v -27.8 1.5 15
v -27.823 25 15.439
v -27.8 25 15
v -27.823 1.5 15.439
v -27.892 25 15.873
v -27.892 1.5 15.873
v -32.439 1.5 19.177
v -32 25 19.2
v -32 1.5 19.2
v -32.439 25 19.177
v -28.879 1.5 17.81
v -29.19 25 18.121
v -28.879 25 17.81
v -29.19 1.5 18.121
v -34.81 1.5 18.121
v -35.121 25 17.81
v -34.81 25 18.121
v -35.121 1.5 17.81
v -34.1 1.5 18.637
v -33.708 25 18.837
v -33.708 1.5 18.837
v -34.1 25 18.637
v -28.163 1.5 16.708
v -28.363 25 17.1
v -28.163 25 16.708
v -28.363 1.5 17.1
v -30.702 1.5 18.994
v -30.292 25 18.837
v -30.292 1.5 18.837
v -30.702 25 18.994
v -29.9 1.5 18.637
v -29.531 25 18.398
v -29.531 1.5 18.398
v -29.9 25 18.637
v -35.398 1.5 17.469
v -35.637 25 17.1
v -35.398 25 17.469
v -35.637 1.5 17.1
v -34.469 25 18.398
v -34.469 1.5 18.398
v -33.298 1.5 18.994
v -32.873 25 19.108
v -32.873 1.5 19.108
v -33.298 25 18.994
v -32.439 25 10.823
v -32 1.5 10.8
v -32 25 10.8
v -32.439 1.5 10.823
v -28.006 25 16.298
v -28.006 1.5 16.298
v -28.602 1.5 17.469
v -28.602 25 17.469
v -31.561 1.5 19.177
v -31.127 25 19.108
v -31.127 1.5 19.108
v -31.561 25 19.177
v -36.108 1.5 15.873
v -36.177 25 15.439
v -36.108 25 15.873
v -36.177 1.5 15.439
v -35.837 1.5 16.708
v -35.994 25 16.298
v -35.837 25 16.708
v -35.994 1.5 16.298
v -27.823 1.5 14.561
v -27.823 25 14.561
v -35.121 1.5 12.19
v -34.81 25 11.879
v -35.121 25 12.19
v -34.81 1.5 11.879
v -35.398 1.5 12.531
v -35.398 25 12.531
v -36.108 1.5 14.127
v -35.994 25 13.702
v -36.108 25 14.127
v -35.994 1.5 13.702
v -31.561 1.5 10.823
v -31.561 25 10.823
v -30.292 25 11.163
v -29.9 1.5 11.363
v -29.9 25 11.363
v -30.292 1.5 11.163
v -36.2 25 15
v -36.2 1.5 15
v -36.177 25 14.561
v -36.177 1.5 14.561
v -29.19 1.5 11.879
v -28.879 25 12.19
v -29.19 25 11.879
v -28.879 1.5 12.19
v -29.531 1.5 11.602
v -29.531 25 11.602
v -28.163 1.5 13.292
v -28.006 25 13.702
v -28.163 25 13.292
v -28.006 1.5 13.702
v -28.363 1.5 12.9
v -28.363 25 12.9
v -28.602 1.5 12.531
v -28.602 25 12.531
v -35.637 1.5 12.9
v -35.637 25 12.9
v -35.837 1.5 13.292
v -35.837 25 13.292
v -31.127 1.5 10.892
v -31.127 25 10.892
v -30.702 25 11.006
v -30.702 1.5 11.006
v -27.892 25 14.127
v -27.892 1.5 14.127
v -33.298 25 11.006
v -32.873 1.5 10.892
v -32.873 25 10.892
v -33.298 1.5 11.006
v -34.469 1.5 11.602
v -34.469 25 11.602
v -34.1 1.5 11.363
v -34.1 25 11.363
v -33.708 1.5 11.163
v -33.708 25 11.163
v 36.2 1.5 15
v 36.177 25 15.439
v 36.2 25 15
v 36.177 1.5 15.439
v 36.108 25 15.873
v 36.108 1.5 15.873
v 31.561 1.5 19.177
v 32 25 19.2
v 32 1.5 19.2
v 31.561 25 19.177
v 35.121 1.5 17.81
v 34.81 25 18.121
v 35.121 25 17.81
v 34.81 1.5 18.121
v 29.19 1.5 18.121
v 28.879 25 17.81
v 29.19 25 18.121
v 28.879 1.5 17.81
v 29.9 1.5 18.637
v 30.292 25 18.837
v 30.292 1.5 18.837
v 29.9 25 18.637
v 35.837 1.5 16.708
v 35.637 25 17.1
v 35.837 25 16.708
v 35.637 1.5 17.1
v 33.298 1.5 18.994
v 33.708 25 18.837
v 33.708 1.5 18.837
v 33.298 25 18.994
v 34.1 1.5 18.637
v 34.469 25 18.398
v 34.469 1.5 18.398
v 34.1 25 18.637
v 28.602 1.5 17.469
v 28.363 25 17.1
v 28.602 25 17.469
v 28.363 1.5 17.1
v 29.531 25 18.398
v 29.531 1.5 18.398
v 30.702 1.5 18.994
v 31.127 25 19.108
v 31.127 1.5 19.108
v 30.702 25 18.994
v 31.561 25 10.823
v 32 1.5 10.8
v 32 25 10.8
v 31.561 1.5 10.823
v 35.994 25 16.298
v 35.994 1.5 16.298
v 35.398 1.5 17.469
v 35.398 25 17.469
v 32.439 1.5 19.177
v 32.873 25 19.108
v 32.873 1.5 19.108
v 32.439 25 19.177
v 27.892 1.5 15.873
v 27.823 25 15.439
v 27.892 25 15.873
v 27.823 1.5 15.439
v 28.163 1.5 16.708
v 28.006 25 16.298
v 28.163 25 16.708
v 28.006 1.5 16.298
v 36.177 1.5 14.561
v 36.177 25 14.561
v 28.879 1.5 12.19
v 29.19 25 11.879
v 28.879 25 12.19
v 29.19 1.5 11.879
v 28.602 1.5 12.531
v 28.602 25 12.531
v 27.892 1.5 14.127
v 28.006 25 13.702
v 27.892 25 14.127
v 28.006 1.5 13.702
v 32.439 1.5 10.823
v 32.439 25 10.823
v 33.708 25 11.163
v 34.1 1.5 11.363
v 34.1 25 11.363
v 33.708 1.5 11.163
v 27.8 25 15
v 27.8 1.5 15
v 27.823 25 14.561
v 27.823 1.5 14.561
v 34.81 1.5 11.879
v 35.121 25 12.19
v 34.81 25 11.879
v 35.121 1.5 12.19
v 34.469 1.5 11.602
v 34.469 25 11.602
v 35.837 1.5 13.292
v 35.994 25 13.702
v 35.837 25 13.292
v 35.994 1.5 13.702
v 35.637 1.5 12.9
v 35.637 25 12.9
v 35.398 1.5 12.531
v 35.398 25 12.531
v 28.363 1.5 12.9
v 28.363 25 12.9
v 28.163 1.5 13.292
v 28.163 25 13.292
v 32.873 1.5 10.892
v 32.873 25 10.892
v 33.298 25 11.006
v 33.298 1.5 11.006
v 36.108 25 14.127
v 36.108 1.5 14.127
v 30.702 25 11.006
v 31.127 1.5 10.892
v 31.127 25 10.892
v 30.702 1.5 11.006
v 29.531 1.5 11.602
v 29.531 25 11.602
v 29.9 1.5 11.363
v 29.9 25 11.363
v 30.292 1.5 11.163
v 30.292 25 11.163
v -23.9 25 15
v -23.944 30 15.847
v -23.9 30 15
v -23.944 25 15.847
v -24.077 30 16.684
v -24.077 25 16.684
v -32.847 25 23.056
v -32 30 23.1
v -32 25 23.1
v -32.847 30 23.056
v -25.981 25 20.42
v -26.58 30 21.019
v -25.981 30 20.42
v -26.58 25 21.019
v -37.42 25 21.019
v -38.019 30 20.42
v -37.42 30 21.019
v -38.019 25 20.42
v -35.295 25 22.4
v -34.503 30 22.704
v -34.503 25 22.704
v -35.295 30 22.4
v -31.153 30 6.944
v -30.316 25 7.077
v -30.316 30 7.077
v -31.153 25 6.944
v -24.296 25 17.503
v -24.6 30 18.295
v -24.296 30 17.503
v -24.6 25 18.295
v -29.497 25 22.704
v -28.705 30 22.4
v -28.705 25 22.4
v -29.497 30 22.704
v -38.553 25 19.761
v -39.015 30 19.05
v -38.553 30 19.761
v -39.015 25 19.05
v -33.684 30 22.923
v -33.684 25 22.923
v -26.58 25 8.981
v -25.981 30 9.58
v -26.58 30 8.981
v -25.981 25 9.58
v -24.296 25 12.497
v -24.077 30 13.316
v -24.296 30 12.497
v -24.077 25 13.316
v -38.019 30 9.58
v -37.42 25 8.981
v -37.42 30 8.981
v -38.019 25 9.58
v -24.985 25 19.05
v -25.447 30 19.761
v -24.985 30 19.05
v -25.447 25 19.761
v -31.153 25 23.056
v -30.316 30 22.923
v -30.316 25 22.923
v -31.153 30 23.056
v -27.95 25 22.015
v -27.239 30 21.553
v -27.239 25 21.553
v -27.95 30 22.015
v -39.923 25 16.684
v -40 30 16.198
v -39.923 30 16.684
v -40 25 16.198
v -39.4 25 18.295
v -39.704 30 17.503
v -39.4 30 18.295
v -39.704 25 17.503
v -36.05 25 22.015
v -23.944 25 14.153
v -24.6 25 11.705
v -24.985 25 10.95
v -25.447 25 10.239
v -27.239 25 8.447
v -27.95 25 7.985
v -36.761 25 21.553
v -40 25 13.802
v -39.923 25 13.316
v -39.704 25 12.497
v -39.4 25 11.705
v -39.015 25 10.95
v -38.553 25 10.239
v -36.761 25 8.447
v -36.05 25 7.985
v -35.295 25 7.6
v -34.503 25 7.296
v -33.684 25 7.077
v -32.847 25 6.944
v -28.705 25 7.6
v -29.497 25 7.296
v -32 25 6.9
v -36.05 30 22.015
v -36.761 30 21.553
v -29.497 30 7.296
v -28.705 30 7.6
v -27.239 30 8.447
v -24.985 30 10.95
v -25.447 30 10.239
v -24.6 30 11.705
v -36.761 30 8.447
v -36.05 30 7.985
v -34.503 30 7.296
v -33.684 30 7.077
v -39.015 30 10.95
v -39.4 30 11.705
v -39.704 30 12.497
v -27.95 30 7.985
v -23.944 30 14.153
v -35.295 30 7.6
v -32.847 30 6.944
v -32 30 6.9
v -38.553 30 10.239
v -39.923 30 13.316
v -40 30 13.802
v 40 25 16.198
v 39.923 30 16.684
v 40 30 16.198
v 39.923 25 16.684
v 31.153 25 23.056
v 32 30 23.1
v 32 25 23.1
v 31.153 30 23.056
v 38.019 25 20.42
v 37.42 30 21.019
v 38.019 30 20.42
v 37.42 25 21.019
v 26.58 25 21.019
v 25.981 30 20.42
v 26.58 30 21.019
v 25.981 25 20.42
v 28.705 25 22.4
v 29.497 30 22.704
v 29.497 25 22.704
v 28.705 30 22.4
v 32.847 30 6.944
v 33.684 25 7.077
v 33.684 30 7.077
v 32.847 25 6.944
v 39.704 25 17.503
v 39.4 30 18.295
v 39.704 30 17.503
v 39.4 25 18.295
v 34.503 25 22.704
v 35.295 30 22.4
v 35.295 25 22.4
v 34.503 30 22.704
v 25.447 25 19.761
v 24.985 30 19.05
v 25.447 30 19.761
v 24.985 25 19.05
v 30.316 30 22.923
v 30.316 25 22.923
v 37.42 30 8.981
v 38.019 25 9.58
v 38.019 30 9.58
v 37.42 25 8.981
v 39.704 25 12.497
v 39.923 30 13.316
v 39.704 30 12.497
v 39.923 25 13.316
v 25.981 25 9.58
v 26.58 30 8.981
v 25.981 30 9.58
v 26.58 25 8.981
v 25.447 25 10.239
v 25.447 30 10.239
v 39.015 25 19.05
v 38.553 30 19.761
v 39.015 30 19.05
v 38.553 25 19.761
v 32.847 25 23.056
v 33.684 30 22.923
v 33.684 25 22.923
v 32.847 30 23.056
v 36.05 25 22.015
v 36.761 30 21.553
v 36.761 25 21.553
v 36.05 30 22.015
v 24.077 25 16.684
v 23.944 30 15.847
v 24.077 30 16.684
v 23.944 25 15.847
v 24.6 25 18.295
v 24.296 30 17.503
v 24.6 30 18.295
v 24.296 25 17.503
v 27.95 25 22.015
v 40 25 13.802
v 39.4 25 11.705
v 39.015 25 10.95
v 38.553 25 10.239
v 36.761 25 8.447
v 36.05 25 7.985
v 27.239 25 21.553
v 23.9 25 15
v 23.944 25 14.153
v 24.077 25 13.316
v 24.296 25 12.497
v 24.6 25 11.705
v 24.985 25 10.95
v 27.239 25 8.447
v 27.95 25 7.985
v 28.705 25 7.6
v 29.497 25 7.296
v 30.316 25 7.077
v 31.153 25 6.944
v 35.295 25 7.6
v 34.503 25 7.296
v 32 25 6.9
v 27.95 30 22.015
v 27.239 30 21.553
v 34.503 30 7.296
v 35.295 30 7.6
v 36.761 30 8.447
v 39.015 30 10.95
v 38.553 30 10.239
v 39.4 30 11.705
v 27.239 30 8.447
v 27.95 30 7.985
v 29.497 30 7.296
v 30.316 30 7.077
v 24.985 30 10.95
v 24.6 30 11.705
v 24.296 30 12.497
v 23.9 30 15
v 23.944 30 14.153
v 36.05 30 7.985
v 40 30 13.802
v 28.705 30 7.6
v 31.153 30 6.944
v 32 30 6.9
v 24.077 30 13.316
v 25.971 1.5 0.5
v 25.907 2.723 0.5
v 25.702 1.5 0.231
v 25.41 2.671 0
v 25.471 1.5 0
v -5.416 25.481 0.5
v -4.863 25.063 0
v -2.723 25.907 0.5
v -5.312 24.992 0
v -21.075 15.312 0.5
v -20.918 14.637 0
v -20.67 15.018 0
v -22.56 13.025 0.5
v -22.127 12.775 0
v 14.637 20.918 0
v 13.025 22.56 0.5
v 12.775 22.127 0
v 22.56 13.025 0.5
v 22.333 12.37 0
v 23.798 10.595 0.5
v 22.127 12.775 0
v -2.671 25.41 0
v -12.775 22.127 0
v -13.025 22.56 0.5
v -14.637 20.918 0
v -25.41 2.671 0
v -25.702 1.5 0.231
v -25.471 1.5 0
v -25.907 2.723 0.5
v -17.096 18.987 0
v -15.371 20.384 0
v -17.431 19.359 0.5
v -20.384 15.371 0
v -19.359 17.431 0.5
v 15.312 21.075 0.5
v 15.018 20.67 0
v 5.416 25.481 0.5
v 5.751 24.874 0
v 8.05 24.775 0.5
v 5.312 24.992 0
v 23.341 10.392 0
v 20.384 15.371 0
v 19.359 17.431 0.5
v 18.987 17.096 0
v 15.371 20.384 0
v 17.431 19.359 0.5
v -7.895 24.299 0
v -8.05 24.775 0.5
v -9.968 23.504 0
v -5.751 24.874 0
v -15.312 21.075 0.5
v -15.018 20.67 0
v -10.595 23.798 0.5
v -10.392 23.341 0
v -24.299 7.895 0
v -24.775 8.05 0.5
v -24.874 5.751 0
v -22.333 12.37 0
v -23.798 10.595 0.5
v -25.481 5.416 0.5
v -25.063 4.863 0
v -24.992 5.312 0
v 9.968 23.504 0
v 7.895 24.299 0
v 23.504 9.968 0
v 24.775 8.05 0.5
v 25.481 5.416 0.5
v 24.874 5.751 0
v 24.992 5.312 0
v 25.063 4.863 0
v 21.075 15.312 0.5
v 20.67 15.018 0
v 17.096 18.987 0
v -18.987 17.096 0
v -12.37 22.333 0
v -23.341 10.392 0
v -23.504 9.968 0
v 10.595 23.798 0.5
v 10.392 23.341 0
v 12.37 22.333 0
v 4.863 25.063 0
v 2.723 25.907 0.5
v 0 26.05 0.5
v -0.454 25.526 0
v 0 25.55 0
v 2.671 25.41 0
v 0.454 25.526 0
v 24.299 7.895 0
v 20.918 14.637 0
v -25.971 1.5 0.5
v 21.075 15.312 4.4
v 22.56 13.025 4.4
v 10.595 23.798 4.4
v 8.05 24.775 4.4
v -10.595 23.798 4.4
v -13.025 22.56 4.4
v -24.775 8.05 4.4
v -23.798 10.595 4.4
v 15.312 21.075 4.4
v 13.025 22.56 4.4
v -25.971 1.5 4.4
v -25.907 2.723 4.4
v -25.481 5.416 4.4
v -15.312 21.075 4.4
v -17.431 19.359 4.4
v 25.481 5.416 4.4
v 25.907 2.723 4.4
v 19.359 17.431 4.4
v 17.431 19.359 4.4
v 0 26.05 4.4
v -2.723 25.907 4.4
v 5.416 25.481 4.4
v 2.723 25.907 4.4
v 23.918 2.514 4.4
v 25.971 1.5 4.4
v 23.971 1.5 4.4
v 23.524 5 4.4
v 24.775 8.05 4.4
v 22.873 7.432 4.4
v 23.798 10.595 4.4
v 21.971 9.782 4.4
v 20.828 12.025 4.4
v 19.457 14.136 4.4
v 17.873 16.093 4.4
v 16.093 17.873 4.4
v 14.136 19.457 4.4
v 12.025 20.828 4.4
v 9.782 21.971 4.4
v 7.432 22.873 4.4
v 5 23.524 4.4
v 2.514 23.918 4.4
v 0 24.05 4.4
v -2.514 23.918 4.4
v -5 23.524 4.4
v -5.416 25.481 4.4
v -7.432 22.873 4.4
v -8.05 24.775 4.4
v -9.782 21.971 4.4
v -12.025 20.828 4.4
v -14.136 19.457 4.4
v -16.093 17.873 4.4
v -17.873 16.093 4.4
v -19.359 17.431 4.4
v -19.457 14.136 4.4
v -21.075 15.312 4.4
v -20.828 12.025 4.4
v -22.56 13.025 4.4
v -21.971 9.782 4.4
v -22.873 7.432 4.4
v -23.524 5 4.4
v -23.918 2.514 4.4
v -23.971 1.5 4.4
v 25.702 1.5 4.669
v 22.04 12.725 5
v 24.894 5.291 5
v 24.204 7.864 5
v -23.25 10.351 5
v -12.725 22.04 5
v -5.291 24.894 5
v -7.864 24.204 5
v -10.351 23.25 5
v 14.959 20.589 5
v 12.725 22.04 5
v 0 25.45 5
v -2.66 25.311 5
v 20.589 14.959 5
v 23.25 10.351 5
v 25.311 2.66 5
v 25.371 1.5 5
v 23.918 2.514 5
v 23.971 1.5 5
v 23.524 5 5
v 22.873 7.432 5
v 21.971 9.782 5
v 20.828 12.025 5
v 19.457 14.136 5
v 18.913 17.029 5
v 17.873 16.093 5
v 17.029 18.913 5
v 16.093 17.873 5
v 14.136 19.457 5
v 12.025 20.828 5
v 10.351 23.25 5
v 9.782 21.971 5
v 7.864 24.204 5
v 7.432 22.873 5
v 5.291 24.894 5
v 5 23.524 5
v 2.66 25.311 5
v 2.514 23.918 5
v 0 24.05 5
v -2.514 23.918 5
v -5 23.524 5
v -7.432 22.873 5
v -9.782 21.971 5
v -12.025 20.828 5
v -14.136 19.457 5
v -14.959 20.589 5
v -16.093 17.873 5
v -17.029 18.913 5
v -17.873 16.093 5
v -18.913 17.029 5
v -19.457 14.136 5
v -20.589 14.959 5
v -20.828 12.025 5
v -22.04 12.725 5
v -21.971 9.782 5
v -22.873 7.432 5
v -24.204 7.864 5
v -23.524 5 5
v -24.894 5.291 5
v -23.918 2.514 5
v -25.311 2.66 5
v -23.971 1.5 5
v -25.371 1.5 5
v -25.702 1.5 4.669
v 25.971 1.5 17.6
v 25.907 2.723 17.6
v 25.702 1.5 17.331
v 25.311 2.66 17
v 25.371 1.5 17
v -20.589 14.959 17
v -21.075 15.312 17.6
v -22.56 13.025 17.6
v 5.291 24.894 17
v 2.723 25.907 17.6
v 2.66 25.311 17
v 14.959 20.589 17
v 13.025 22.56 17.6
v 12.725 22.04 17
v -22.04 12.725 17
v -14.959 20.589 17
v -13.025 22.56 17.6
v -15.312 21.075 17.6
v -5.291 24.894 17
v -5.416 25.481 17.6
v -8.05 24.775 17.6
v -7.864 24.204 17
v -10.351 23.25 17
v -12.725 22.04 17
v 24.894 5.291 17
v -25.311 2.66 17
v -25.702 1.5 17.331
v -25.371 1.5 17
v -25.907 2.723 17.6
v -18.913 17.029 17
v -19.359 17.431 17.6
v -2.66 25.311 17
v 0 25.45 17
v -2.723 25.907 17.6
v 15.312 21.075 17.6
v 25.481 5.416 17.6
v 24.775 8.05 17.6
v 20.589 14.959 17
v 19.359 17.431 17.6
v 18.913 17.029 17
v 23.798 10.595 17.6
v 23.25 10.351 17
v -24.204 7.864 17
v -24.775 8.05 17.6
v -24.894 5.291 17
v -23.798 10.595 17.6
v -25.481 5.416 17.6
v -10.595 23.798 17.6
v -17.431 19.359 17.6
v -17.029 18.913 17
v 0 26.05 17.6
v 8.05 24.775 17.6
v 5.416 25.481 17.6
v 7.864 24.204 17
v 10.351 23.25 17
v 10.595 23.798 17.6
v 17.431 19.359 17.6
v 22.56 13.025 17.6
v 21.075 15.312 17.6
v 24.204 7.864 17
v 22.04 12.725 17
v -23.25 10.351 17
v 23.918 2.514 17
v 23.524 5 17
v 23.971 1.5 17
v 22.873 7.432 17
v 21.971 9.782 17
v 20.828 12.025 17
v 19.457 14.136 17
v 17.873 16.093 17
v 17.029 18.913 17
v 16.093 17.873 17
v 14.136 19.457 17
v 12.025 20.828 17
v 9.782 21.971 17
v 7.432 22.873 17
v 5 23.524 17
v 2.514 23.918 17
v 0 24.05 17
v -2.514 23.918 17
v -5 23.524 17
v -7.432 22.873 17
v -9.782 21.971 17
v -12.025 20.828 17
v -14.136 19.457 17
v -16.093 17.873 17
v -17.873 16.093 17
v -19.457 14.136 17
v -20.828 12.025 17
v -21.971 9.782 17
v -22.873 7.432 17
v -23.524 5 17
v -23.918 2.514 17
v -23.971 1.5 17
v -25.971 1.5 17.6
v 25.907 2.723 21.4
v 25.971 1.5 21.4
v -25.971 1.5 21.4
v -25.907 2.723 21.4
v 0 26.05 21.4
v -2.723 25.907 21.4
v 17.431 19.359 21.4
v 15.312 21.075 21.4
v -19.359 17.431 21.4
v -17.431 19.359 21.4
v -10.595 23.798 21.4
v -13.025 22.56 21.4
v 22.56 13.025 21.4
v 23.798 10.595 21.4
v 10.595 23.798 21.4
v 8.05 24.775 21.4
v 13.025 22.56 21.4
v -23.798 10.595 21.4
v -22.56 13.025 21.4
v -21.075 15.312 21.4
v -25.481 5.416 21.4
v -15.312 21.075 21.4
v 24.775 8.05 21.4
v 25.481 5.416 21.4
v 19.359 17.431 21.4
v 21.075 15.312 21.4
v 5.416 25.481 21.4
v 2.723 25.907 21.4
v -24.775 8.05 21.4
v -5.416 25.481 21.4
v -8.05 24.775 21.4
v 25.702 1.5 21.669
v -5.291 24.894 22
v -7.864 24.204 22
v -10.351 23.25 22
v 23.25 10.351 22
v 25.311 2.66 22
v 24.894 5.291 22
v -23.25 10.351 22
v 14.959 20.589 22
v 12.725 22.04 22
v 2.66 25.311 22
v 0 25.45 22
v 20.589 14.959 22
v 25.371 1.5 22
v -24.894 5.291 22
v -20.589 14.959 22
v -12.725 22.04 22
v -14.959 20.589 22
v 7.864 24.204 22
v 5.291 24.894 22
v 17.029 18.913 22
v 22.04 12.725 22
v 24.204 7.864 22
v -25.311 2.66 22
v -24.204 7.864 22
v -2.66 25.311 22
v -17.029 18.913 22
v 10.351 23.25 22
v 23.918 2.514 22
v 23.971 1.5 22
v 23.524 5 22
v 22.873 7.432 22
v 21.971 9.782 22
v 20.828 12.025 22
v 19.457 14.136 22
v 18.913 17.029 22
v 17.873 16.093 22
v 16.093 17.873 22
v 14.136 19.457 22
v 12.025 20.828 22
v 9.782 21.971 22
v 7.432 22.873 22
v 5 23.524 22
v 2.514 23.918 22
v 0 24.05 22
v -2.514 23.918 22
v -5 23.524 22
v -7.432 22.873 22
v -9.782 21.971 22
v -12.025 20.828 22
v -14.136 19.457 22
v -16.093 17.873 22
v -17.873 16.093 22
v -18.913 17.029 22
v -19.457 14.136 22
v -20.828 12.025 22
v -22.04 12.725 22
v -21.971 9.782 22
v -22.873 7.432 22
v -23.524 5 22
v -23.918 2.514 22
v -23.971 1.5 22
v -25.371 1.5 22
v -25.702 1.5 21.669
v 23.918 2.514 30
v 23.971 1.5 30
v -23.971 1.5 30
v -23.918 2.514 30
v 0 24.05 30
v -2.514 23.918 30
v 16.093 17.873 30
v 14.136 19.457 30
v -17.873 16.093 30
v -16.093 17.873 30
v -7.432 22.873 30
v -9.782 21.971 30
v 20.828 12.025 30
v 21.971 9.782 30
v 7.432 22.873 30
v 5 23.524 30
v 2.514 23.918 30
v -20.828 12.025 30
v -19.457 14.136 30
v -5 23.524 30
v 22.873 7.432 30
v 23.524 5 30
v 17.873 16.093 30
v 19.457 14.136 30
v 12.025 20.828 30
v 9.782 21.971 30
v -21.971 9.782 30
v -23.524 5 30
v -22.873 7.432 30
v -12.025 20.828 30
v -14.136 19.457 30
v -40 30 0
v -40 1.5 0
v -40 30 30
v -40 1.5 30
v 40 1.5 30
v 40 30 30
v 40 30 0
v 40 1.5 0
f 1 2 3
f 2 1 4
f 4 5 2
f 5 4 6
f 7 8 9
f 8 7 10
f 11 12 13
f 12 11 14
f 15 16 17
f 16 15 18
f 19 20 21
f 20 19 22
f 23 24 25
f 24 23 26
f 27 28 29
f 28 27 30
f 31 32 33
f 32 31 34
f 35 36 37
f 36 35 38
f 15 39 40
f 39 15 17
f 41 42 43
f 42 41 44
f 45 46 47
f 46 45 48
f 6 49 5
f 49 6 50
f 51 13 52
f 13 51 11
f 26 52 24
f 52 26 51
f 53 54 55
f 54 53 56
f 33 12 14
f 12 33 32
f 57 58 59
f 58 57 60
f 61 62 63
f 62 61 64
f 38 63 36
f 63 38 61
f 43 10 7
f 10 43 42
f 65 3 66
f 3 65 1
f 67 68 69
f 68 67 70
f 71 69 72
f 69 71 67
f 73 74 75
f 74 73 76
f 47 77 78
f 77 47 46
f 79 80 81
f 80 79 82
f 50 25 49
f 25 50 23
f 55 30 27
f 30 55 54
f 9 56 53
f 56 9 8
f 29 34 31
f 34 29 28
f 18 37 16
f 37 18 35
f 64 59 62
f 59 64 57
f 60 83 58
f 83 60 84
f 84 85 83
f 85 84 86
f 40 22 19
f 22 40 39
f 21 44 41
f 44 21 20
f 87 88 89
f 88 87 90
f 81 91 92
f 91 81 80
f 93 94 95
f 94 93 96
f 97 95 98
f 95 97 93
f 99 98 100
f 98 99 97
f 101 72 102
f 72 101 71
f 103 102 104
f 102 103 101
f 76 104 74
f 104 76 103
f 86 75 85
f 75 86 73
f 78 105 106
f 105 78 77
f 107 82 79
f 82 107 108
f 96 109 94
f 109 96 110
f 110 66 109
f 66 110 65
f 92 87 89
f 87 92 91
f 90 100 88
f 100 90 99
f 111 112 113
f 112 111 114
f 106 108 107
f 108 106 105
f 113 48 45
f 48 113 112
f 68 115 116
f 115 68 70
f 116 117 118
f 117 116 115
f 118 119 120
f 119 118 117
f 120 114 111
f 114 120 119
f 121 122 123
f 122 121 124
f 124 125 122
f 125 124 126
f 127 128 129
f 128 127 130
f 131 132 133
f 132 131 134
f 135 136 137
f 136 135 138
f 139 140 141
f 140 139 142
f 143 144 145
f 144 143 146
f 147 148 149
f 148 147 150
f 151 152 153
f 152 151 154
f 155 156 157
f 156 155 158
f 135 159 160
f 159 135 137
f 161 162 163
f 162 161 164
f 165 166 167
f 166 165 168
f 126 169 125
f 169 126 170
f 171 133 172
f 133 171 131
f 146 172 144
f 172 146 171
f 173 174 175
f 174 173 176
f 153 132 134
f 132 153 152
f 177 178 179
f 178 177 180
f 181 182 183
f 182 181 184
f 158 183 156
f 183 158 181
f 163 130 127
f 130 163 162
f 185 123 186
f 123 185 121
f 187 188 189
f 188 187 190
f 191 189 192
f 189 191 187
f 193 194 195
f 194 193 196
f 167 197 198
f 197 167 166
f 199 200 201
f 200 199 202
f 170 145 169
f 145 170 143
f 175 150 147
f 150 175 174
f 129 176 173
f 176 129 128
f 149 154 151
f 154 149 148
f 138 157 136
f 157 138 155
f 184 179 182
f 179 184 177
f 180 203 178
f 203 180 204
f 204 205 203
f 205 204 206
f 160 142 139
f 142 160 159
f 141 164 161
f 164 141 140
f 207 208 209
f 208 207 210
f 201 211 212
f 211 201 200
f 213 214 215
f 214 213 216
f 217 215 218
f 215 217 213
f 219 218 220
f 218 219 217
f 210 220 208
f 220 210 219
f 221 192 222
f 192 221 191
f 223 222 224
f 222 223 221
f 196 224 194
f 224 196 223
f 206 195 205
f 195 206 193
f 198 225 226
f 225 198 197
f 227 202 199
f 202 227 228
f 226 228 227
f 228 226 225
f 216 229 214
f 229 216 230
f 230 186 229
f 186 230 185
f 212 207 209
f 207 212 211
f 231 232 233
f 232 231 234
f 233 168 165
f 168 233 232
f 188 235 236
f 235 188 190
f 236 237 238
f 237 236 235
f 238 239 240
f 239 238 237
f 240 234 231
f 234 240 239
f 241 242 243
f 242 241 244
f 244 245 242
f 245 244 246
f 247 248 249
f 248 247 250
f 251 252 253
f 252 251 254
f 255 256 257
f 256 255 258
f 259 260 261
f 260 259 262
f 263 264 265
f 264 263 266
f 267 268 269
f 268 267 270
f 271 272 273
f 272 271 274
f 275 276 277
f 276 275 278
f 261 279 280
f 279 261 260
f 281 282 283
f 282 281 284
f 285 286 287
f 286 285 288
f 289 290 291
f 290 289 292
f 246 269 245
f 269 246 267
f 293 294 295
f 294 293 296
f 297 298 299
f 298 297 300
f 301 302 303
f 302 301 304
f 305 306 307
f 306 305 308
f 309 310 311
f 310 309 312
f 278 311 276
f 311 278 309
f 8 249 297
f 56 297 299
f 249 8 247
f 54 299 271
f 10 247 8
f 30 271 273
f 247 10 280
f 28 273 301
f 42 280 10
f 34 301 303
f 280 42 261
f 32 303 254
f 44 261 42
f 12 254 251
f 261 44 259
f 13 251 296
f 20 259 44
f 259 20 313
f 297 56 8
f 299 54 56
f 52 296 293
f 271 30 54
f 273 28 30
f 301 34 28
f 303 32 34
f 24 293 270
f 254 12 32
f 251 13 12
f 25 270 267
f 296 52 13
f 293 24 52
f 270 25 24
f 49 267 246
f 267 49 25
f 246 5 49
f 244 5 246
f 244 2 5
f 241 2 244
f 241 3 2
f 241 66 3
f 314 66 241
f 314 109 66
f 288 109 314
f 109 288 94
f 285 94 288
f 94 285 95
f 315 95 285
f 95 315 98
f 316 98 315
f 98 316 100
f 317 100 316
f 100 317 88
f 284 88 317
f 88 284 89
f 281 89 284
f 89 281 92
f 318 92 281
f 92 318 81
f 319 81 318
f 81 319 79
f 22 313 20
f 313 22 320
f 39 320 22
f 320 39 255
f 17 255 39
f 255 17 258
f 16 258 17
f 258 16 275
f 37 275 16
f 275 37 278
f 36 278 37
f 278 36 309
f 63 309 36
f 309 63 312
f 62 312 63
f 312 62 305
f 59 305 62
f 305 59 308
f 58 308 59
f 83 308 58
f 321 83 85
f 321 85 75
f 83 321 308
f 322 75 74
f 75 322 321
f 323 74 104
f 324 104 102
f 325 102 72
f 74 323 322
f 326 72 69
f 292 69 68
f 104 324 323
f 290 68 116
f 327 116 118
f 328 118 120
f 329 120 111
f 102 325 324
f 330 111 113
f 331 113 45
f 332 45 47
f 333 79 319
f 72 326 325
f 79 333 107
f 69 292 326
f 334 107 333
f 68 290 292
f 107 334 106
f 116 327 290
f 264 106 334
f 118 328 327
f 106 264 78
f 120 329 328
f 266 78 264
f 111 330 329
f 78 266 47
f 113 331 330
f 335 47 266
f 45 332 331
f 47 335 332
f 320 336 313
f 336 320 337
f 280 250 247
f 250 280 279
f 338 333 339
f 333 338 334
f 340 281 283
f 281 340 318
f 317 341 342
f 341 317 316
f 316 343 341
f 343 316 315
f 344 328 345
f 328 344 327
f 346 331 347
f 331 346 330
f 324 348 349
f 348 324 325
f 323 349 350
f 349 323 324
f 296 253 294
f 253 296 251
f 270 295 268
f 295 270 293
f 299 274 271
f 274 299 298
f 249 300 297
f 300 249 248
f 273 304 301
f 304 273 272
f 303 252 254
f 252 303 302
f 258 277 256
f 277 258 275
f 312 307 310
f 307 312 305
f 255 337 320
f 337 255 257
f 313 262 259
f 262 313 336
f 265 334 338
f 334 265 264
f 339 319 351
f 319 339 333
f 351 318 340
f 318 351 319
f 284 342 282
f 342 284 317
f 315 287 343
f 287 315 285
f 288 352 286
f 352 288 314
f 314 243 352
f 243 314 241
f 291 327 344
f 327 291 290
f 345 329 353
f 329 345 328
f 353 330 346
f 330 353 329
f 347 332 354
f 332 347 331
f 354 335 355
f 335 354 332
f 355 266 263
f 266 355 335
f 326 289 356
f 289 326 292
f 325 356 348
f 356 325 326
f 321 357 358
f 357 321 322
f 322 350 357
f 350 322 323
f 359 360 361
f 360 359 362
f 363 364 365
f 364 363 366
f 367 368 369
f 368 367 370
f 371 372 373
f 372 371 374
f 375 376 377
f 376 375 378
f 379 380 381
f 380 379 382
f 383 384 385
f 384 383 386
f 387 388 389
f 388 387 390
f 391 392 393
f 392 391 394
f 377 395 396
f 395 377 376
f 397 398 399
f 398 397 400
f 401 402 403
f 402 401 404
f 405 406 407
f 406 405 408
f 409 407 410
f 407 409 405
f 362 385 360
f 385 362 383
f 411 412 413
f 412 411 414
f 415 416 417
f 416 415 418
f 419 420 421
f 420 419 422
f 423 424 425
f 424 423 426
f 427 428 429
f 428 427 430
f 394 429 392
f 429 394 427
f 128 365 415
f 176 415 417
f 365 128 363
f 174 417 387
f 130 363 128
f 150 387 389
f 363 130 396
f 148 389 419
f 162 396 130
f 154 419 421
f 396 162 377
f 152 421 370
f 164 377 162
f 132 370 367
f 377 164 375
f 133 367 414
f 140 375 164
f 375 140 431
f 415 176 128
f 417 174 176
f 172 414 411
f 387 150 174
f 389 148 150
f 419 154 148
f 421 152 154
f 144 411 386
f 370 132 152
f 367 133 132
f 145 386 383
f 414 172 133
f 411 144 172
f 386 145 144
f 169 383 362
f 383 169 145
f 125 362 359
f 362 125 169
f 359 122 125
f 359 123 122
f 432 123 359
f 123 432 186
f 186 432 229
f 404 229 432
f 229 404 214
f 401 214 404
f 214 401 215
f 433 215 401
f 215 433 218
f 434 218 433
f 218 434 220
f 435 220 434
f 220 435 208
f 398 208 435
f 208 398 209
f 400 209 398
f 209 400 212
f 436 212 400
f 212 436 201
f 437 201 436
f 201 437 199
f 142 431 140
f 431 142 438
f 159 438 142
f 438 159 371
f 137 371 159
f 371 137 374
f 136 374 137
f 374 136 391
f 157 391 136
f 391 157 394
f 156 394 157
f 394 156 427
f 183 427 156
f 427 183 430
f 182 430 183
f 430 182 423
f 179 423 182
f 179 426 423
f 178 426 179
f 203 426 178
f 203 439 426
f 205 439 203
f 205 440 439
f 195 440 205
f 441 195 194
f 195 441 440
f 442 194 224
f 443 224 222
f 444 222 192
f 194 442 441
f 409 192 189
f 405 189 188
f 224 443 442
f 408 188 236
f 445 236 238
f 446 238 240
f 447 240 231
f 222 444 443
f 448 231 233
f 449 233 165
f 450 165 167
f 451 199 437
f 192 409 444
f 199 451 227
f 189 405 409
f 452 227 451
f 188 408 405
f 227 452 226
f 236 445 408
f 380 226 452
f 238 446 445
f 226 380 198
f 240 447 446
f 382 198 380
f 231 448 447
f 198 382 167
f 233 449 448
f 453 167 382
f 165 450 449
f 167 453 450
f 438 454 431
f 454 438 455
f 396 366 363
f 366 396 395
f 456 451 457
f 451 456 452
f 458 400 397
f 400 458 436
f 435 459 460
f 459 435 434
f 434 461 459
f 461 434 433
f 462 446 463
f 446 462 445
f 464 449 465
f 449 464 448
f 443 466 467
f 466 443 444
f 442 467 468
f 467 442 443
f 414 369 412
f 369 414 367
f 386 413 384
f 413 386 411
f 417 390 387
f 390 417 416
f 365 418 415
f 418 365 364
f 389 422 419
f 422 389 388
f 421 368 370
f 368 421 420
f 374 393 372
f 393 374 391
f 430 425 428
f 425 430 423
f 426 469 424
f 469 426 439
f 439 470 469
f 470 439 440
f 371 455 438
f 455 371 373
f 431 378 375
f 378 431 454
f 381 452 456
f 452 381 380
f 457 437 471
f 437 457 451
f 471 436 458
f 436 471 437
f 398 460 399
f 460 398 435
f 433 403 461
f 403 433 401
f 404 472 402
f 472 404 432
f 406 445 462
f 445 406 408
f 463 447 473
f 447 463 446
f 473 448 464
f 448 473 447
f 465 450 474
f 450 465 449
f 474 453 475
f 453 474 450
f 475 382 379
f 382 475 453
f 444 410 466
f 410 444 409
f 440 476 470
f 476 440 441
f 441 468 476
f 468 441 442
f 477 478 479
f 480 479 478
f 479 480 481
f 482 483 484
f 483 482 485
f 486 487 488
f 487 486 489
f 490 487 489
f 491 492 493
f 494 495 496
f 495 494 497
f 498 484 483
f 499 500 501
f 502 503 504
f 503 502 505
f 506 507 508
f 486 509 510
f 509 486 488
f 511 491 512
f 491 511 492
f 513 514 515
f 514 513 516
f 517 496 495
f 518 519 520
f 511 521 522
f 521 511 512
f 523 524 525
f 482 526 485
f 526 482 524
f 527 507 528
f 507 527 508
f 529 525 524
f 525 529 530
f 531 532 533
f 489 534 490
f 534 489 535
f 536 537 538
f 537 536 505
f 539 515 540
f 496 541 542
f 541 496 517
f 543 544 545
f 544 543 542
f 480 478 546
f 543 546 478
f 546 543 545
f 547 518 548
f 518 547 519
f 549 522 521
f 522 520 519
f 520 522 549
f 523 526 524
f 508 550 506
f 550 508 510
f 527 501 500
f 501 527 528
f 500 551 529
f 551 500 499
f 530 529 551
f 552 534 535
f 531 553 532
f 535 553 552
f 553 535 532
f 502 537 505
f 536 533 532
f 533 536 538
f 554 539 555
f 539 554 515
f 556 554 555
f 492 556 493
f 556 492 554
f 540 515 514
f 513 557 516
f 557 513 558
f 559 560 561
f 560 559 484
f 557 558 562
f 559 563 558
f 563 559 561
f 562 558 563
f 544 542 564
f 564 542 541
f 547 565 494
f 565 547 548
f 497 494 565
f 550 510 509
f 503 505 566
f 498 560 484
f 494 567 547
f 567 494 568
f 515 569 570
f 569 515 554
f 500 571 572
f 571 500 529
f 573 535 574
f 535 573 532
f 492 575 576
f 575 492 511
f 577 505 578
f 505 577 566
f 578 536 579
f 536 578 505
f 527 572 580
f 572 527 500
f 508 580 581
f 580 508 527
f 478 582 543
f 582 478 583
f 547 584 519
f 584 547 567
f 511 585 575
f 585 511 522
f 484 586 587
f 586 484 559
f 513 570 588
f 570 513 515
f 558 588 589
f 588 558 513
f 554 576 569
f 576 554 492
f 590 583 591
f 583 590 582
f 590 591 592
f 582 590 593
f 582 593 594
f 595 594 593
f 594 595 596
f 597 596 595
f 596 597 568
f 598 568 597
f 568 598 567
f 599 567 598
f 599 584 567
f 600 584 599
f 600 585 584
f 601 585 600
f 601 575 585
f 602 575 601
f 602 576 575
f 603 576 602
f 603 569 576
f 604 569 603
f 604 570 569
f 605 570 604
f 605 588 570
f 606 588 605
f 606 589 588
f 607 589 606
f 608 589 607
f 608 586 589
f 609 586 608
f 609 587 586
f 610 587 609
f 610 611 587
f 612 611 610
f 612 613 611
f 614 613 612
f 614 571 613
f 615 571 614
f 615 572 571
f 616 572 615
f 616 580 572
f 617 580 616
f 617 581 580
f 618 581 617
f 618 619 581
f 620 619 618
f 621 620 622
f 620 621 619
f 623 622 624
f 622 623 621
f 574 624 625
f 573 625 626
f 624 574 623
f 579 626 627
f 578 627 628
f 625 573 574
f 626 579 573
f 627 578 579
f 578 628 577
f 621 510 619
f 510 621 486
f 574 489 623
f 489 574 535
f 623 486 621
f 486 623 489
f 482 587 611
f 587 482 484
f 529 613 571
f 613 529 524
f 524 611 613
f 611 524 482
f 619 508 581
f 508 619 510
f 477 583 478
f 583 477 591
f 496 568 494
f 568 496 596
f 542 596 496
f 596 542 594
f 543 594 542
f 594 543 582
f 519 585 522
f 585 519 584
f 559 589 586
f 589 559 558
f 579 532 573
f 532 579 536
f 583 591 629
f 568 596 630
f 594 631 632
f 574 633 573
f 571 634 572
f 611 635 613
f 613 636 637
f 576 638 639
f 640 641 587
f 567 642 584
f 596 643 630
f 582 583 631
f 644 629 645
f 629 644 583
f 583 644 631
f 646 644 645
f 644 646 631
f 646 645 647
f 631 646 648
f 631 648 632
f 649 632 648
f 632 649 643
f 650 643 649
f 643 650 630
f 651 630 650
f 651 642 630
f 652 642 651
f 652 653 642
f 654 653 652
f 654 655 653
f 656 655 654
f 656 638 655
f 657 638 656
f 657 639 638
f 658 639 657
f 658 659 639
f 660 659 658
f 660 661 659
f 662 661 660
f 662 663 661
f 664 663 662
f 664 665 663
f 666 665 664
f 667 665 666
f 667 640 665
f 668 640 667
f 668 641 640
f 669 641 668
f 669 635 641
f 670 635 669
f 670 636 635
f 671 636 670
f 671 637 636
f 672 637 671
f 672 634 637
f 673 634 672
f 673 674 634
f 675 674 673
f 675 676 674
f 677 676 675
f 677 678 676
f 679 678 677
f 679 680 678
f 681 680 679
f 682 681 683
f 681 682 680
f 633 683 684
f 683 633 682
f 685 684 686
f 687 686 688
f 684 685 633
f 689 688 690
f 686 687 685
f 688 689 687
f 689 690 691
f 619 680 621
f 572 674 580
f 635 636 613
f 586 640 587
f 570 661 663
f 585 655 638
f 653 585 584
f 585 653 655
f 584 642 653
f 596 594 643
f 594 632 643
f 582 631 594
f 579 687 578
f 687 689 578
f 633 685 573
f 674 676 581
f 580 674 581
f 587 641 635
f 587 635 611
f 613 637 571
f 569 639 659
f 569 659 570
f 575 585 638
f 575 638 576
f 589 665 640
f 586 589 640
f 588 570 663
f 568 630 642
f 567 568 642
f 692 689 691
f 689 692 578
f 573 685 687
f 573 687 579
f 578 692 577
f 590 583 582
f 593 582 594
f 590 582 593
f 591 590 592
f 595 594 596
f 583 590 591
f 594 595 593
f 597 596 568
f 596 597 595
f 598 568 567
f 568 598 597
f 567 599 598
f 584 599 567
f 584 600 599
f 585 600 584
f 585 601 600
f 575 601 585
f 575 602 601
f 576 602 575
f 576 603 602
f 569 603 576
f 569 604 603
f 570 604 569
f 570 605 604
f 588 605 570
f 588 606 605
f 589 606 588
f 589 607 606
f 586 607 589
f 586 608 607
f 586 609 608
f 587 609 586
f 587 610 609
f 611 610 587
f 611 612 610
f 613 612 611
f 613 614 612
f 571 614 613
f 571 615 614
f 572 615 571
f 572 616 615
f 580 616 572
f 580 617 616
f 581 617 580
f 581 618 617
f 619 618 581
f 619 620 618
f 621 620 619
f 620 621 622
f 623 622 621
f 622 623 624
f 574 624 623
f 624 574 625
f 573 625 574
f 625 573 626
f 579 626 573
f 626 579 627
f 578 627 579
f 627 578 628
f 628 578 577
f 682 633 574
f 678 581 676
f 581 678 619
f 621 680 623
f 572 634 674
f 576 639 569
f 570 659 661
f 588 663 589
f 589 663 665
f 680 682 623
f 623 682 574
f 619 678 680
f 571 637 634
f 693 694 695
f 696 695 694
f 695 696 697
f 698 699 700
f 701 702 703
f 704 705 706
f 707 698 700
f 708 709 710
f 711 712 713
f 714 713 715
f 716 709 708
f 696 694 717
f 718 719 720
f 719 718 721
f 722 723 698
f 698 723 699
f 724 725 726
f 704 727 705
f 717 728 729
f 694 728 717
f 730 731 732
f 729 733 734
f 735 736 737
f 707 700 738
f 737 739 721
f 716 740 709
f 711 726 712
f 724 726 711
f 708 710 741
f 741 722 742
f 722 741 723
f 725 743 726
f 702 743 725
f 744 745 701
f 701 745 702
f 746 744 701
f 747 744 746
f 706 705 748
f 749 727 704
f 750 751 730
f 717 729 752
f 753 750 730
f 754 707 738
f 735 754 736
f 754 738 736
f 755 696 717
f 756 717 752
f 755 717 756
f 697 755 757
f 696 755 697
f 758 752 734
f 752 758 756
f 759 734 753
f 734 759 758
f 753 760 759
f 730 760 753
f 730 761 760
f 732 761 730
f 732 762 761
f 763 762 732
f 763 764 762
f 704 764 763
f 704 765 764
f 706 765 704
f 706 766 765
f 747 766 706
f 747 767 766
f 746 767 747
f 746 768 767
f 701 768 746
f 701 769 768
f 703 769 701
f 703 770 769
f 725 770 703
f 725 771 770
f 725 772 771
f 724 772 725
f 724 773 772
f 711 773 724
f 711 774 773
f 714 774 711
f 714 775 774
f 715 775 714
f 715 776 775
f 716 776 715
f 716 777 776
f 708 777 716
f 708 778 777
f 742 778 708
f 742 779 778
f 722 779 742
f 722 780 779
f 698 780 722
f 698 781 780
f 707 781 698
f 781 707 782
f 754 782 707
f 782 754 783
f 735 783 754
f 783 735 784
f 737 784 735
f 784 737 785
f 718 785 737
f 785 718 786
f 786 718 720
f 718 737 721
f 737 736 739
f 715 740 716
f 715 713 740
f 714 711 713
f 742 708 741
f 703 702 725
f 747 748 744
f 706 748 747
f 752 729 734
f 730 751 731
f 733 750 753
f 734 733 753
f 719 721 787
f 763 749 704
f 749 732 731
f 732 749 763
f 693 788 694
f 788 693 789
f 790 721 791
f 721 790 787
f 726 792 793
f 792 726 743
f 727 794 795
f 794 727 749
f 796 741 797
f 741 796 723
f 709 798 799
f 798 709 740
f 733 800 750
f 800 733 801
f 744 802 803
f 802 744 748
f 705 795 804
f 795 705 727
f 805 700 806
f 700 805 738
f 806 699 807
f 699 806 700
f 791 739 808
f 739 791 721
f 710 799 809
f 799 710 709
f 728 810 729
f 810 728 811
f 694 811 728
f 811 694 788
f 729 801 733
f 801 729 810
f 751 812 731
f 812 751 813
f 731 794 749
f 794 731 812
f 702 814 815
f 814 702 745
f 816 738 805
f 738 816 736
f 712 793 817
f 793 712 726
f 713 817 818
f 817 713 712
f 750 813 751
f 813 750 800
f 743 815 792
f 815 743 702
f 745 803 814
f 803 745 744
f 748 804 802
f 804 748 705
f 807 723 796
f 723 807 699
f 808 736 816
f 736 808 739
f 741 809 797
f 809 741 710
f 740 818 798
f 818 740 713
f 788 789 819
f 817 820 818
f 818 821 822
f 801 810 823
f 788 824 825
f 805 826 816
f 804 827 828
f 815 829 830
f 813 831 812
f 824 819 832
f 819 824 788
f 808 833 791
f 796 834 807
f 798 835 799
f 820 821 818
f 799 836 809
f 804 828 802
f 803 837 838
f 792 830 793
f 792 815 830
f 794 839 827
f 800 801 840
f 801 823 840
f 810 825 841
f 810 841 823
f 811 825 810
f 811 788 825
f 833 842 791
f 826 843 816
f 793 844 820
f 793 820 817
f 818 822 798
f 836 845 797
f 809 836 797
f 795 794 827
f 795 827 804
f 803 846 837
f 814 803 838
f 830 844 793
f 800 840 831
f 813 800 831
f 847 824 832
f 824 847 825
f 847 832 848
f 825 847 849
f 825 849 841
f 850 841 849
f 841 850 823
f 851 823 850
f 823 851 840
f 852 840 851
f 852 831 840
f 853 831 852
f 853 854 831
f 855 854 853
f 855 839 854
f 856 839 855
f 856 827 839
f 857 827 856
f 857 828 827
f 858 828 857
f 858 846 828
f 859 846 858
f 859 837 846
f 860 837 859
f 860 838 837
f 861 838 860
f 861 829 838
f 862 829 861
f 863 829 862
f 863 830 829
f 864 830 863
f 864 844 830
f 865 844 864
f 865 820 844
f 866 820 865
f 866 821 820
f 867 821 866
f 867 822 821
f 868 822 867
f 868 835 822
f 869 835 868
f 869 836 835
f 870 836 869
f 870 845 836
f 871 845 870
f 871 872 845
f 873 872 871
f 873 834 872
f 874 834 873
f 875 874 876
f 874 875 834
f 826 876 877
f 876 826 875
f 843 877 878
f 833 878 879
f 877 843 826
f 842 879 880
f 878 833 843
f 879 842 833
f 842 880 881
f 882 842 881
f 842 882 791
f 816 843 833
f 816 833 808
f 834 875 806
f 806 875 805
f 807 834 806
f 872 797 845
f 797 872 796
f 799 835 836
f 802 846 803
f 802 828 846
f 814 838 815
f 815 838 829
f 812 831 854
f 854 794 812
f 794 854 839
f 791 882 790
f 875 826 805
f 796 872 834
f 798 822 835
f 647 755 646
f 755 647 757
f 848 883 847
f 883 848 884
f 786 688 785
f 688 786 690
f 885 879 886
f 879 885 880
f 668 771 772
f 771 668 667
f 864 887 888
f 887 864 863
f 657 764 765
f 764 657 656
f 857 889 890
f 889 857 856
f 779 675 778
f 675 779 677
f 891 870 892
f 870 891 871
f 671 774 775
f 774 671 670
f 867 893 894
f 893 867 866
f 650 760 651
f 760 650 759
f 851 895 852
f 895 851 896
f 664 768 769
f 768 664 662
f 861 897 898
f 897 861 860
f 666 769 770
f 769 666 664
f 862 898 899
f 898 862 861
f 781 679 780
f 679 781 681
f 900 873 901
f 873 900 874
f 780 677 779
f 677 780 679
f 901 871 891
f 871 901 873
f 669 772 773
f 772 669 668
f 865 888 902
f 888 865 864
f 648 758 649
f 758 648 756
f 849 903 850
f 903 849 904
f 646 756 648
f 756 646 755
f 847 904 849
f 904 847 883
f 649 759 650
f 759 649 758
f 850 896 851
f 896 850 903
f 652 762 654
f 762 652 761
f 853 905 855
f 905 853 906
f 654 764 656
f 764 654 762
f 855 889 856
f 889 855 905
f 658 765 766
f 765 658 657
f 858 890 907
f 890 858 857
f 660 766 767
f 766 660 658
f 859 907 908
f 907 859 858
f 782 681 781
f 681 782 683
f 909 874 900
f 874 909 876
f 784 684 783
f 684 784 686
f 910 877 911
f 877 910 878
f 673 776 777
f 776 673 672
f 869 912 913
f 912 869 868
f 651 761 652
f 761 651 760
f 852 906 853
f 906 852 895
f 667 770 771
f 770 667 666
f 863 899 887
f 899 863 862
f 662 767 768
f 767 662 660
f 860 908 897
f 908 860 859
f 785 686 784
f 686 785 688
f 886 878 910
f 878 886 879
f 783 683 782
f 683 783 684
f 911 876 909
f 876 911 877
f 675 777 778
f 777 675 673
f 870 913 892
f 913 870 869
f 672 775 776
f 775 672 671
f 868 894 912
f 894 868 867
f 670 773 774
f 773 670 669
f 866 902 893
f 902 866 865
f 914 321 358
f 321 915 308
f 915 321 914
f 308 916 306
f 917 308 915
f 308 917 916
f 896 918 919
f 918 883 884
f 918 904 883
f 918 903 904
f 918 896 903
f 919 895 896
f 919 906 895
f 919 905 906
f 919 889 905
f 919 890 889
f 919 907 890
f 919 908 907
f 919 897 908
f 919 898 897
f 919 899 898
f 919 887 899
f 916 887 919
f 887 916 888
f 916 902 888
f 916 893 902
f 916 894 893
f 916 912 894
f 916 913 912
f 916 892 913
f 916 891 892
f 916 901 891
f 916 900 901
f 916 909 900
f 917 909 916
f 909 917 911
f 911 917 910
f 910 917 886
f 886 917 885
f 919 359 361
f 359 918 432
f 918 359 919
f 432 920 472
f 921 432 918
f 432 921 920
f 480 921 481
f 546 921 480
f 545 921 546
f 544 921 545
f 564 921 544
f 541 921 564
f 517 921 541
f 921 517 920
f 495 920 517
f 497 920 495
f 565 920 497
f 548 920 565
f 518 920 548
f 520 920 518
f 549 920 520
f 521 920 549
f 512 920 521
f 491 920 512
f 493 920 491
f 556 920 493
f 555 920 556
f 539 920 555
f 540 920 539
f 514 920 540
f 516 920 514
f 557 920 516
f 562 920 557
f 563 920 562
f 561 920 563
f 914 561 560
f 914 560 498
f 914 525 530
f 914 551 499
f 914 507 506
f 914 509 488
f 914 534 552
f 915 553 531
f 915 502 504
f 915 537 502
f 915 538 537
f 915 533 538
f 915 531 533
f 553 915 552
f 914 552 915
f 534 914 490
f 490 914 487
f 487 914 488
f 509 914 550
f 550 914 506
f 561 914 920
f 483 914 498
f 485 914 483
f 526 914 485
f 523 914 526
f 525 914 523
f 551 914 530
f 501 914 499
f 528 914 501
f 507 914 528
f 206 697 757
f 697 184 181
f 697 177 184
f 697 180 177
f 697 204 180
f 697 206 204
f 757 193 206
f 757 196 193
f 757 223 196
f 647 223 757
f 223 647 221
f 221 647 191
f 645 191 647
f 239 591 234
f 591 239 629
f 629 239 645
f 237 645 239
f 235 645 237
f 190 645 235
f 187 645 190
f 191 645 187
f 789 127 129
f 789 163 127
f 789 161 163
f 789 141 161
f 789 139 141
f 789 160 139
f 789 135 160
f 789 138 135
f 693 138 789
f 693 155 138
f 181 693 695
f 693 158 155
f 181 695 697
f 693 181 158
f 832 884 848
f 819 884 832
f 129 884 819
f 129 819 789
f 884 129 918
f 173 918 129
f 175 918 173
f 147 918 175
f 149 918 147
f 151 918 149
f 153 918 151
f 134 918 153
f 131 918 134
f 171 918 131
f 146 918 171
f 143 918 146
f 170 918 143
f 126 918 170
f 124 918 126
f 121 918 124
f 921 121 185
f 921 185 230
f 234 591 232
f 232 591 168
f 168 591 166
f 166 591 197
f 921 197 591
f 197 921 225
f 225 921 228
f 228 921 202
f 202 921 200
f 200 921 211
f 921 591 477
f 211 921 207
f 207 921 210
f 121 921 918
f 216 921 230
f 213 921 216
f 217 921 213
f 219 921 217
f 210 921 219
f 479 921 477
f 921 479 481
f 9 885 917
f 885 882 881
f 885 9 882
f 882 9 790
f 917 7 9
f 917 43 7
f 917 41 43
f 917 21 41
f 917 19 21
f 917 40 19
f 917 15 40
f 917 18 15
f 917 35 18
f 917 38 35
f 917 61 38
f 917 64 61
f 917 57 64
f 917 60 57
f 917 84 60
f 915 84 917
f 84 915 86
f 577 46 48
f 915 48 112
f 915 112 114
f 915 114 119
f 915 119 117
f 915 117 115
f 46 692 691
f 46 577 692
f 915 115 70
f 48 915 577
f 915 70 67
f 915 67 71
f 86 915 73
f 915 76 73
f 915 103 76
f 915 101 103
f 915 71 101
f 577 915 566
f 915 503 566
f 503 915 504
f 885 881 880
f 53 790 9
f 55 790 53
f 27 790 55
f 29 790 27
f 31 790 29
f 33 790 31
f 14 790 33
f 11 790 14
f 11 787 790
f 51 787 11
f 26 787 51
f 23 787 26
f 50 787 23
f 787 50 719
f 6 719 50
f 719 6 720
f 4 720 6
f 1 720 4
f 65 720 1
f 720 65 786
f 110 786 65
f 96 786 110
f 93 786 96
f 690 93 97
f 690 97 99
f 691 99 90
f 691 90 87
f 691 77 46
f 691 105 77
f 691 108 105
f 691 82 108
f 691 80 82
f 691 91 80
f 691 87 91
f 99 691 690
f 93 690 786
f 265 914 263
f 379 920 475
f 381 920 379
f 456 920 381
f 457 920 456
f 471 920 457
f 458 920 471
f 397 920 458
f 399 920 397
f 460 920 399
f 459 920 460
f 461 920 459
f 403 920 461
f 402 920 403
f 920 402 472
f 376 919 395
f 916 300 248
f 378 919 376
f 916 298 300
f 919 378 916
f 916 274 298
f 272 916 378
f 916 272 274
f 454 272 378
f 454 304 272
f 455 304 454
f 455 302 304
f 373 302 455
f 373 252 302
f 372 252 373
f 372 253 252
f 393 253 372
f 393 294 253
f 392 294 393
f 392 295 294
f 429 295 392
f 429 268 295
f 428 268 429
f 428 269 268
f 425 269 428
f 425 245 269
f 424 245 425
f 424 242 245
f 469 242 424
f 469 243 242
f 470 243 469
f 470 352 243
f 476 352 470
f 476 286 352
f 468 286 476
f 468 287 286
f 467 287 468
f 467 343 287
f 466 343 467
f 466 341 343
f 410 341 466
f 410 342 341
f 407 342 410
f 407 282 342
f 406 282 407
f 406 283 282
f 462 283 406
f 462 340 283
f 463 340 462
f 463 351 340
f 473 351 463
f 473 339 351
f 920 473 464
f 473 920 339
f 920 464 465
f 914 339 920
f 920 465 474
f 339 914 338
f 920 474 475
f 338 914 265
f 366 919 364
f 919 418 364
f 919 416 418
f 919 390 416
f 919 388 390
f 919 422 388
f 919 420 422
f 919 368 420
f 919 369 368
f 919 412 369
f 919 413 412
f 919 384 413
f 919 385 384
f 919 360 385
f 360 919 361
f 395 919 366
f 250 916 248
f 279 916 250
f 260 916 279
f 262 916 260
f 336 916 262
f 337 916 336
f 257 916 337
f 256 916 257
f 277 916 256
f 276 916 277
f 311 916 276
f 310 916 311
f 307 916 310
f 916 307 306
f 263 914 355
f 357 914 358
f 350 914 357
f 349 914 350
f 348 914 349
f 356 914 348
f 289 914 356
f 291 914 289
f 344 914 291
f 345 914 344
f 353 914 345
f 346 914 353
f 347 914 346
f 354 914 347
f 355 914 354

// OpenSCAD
// --- RENDER INSTELLINGEN ---
show_front_clamp = true;
show_back_clamp  = false;
show_ref_rod     = true;

// --- PARAMETERS ---
cylinder_diameter = 48; 
block_height      = 30;
block_depth       = 60;
block_width       = 80;
gap               = 3;  
tolerance         = 0.1; 

bolt_diameter     = 8.4;
// De bout komt nu in het midden, dus margin is niet meer direct nodig voor de lus
// Maar we behouden de variabelen voor overzicht

recess_diameter   = 16.2; 
recess_depth      = 5;  

$fn = 60; 

// Parameters voor de verbreding (ringen)
ring_h = 5; 
ring_t = 2; 
upper_ring_z = 17; 

// --- CALCULATIONS ---
x_pos_bolt = (cylinder_diameter / 2) + ((block_width - cylinder_diameter) / 4);
z_pos_bolt = block_height / 2; // Exact in het verticale midden

// --- MODULES ---

// --- AANGEPASTE MODULE ---

module internal_negative_shape() {
    d_with_tol = cylinder_diameter + tolerance;
    // De diameter van de ring in de klem moet ook de tolerantie krijgen
    ring_d_with_tol = (cylinder_diameter + (ring_t * 2)) + tolerance;
    
    // De bevel_size moet hier hetzelfde zijn als in de reference_rod
    bevel_size = 0.6; 

    // Centrale as gat
    translate([0, 0, -1]) 
        cylinder(h = block_height + 2, d = d_with_tol);
    
    // Onderste ring uitsparing (met bevel)
    render_beveled_ring(-0.1, ring_h + 0.1, ring_d_with_tol, bevel_size);
    
    // Bovenste ring uitsparing (met bevel)
    translate([0, 0, upper_ring_z])
        render_beveled_ring(0, ring_h, ring_d_with_tol, bevel_size);
}
module reference_rod() {
    // Variabele voor de grootte van het bevel (bijv. 1mm)
    bevel_size = 0.6; 
    
    if (show_ref_rod) {
        %union() {
            // De hoofdas
            cylinder(h = block_height, d = cylinder_diameter);
            
            // Onderste ring met bevel
            render_beveled_ring(0, ring_h, cylinder_diameter + (ring_t * 2), bevel_size);
            
            // Bovenste ring met bevel
            translate([0, 0, upper_ring_z])
                render_beveled_ring(0, ring_h, cylinder_diameter + (ring_t * 2), bevel_size);
        }
    }
}

// Hulpmiddel om een ring met bevels te maken
module render_beveled_ring(z, h, d, b) {
    translate([0, 0, z]) {
        union() {
            // Onderste schuine deel
            cylinder(h = b, d1 = d - (b * 2), d2 = d);
            
            // Middelste rechte deel
            translate([0, 0, b])
                cylinder(h = h - (b * 2), d = d);
            
            // Bovenste schuine deel
            translate([0, 0, h - b])
                cylinder(h = b, d1 = d, d2 = d - (b * 2));
        }
    }
}

// Aangepast naar 1 gat per zijde
module bolt_holes() {
    for (x = [-x_pos_bolt, x_pos_bolt]) {
        translate([x, 0, z_pos_bolt])
            rotate([90, 0, 0])
            cylinder(h = block_depth * 2, d = bolt_diameter, center = true);
    }
}

// Aangepast naar 1 uitsparing per zijde
module bolt_recesses(face_y_position) {
    for (x = [-x_pos_bolt, x_pos_bolt]) {
        translate([x, face_y_position, z_pos_bolt])
            rotate([90, 0, 0])
            cylinder(h = recess_depth * 2, d = recess_diameter, center = true);
    }
}

// VOORKANT
module front_clamp() {
    half_depth = (block_depth - gap) / 2;
    y_shift = (gap / 2) + (half_depth / 2);
    outer_y = y_shift + (half_depth / 2);

    difference() {
        translate([0, y_shift, block_height / 2])
            cube([block_width, half_depth, block_height], center = true);
        
        internal_negative_shape();
        bolt_holes();
        bolt_recesses(outer_y);
    }
}

// ACHTERKANT
module back_clamp() {
    half_depth = (block_depth - gap) / 2;
    y_shift = (gap / 2) + (half_depth / 2);
    outer_y = - (y_shift + (half_depth / 2));

    difference() {
        translate([0, -y_shift, block_height / 2])
            cube([block_width, half_depth, block_height], center = true);
        
        internal_negative_shape();
        bolt_holes();
        bolt_recesses(outer_y);
    }
}

// --- EXECUTION ---
reference_rod();

if (show_front_clamp) {
    color("Cyan") front_clamp();
}

if (show_back_clamp) {
    color("RoyalBlue") back_clamp();
}
